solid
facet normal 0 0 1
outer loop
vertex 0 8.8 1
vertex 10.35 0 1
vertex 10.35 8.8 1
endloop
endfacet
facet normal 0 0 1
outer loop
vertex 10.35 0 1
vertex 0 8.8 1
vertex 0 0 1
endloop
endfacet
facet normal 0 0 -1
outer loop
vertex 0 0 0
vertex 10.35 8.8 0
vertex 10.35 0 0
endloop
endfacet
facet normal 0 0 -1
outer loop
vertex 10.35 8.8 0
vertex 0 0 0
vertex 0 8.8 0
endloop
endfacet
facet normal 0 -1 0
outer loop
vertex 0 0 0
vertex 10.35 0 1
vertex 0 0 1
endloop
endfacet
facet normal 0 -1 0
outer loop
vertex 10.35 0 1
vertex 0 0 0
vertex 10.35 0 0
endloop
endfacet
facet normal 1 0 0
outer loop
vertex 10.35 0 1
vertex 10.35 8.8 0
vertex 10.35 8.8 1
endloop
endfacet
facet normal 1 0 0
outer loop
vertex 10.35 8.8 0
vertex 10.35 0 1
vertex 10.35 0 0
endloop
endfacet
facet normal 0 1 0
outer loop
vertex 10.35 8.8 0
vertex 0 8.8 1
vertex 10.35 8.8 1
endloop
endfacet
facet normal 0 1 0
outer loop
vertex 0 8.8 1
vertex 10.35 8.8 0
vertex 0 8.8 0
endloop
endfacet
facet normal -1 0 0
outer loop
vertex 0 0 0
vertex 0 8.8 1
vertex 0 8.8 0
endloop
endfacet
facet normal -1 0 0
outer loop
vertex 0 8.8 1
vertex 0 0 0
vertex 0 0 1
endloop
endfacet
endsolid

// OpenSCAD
/* Warning, this is a very basic generator with a lot of approximation 
input data : [TO-263, 6FW, 10.35x8.8mm, 2, , B, C04-00618B]
generated by com.zoubworld.electronics.cad.model3d.Basic
Date : Sun Feb 15 10:50:49 CET 2026
*/

//body
color("black")
translate([0,0,0])
cube([10.35,8.8,1.0], center=false);
